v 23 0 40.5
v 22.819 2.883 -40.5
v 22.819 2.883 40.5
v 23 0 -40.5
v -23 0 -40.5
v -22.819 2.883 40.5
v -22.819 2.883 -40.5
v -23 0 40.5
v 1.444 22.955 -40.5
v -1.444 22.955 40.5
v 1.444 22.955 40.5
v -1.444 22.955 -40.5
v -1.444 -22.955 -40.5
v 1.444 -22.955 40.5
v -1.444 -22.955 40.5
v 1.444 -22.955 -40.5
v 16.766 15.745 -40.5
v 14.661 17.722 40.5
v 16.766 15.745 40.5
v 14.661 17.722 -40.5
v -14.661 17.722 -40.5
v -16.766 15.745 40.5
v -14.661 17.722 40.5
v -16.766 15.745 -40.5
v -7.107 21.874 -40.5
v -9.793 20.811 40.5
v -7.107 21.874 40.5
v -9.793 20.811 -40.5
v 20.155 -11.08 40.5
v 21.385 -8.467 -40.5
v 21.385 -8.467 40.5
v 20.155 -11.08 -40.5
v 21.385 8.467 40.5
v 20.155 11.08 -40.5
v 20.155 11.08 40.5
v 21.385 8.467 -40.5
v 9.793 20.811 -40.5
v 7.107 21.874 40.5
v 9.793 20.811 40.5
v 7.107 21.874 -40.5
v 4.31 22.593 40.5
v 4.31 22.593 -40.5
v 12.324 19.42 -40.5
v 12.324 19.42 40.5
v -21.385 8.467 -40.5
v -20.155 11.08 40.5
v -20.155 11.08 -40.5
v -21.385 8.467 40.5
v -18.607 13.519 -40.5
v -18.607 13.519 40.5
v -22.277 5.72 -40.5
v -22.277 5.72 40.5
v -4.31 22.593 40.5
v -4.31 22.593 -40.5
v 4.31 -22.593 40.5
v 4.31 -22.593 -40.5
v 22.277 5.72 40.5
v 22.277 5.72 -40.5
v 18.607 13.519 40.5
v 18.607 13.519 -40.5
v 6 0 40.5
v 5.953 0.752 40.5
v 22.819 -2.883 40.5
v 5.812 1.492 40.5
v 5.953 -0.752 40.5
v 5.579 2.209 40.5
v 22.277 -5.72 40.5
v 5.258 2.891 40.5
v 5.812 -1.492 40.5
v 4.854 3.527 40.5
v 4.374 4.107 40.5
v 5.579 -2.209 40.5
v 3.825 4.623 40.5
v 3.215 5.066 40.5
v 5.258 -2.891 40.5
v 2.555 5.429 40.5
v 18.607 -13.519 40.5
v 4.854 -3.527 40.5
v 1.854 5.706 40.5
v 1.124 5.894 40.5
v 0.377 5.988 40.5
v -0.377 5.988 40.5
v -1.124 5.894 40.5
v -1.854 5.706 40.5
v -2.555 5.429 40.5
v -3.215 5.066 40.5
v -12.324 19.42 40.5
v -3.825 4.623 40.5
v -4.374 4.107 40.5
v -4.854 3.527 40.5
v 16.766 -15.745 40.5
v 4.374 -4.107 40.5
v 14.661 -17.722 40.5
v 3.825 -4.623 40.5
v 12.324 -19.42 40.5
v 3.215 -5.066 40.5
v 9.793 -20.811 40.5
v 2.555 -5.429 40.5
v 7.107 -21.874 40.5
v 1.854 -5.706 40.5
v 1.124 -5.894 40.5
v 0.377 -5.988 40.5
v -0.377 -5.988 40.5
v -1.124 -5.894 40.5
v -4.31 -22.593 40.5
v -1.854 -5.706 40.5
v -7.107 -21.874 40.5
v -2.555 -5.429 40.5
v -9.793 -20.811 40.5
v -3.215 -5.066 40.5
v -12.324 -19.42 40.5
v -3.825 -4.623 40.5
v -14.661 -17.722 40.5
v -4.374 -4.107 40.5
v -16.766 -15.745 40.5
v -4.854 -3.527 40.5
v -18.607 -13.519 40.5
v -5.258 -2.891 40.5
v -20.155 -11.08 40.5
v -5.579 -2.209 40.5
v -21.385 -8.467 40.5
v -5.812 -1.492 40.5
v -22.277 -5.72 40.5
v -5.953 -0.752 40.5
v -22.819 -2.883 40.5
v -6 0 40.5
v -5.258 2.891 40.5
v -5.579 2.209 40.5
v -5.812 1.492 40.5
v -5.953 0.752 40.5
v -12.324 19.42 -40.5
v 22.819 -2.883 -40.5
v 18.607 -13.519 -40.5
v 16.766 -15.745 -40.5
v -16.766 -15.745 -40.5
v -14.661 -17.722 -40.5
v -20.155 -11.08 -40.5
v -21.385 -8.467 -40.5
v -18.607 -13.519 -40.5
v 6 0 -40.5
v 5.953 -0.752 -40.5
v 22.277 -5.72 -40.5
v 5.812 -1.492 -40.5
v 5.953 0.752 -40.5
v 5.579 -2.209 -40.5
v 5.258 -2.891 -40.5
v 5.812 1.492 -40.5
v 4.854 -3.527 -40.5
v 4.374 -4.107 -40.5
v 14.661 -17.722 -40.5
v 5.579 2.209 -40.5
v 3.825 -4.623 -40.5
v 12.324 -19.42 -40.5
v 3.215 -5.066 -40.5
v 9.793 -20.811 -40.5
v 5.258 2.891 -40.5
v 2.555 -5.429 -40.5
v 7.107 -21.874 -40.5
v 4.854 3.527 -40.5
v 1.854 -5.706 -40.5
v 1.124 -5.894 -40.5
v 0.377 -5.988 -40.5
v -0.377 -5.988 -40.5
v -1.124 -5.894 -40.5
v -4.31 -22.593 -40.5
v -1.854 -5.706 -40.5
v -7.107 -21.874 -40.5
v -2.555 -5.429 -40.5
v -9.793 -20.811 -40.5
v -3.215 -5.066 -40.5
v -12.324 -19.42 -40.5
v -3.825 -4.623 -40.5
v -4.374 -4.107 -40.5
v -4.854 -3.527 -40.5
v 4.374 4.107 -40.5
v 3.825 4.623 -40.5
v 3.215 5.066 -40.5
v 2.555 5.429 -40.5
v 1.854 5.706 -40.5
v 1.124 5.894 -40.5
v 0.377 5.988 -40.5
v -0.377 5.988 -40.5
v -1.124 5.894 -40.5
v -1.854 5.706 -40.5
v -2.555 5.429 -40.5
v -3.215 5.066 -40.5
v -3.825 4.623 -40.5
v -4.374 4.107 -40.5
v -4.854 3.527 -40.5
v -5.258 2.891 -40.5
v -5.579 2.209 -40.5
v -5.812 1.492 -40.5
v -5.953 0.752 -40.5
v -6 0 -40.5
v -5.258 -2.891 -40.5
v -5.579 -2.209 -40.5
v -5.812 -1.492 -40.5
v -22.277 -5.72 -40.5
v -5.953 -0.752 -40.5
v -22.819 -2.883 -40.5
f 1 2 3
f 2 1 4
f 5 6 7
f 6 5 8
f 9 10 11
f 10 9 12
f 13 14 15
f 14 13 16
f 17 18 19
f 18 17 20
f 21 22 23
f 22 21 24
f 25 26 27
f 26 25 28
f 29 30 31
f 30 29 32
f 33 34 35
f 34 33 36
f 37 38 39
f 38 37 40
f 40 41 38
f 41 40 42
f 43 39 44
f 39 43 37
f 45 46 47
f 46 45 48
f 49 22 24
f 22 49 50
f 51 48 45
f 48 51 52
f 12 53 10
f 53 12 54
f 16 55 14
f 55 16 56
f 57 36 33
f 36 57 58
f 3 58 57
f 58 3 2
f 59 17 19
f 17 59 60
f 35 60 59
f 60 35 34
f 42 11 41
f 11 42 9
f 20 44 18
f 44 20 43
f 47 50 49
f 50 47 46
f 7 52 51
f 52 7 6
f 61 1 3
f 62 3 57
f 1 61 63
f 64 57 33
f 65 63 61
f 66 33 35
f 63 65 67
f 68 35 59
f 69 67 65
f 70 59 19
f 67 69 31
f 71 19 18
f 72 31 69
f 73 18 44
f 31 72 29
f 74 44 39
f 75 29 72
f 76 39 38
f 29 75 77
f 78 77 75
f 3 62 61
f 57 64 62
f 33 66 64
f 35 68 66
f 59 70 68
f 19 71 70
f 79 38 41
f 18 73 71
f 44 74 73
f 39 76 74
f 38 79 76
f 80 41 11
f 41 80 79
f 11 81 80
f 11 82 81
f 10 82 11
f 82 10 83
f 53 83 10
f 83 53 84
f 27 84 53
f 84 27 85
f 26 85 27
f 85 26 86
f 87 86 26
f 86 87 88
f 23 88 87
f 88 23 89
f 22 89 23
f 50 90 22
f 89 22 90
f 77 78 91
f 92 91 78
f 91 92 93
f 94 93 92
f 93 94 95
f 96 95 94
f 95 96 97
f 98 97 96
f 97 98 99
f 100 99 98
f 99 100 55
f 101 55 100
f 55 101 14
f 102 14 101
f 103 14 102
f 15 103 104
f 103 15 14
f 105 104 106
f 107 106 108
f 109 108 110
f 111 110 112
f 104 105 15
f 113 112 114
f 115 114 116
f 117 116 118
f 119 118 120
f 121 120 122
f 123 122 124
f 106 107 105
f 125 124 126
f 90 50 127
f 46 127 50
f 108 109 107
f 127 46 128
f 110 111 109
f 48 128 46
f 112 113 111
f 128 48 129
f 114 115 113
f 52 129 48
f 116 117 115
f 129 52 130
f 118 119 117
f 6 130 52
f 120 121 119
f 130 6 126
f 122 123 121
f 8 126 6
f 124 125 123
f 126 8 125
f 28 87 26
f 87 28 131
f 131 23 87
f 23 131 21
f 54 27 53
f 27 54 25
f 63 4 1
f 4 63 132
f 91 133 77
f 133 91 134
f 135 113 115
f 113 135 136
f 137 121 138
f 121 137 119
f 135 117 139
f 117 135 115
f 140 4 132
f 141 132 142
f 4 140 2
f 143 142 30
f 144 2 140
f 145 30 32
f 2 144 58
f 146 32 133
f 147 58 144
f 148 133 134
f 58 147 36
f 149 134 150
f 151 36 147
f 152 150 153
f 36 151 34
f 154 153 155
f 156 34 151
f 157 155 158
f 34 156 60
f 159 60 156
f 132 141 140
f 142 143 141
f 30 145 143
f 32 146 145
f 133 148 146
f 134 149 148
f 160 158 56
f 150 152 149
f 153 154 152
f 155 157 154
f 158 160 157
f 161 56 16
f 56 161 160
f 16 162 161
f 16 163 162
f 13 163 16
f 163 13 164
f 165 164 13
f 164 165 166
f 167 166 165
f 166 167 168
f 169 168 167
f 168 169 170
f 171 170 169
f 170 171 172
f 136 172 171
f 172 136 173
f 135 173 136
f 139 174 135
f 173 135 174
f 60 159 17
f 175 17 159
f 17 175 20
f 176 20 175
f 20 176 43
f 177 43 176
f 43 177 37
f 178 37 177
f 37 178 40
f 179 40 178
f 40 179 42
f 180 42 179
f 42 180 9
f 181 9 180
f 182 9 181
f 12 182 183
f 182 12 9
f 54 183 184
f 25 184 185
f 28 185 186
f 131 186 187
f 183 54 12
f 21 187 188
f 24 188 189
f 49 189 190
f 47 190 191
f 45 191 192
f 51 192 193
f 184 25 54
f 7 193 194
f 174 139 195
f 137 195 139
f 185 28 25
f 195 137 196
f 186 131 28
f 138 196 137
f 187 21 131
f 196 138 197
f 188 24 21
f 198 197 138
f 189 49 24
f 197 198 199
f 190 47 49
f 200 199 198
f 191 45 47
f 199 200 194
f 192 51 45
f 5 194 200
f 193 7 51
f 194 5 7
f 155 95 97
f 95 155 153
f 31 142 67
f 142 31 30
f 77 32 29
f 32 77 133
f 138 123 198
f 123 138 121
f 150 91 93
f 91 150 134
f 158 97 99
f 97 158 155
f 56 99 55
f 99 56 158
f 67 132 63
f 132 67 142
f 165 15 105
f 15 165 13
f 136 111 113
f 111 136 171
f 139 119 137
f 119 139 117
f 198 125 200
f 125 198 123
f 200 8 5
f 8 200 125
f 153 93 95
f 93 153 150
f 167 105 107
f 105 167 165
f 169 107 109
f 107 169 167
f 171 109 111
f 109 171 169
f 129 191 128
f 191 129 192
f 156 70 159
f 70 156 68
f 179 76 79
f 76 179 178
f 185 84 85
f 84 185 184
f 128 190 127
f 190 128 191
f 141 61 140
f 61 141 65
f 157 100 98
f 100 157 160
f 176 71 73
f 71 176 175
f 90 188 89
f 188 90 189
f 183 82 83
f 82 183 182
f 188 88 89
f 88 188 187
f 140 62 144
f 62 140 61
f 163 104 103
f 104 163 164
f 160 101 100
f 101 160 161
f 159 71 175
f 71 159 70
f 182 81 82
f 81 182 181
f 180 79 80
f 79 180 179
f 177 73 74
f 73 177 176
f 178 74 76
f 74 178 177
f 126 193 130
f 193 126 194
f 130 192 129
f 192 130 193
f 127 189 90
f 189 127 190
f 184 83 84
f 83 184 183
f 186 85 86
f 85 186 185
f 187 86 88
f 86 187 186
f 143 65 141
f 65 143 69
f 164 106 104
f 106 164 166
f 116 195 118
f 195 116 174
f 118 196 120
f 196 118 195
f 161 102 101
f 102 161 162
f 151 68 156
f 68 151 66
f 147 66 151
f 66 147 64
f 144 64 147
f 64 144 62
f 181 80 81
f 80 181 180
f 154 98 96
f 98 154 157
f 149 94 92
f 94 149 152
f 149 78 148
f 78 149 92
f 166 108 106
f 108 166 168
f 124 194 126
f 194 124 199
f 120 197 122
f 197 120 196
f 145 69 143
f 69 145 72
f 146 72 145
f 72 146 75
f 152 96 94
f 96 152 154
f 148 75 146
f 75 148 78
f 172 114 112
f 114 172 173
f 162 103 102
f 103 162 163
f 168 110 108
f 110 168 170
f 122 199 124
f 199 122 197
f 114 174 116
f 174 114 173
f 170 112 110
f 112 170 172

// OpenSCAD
$fn = 50;


difference() {
	union() {
		translate(v = [0, 0, -40.5000000000]) {
			cylinder(h = 81, r = 23.0000000000);
		}
	}
	union() {
		translate(v = [0, 0, -100.0000000000]) {
			cylinder(h = 200, r = 6);
		}
	}
}
